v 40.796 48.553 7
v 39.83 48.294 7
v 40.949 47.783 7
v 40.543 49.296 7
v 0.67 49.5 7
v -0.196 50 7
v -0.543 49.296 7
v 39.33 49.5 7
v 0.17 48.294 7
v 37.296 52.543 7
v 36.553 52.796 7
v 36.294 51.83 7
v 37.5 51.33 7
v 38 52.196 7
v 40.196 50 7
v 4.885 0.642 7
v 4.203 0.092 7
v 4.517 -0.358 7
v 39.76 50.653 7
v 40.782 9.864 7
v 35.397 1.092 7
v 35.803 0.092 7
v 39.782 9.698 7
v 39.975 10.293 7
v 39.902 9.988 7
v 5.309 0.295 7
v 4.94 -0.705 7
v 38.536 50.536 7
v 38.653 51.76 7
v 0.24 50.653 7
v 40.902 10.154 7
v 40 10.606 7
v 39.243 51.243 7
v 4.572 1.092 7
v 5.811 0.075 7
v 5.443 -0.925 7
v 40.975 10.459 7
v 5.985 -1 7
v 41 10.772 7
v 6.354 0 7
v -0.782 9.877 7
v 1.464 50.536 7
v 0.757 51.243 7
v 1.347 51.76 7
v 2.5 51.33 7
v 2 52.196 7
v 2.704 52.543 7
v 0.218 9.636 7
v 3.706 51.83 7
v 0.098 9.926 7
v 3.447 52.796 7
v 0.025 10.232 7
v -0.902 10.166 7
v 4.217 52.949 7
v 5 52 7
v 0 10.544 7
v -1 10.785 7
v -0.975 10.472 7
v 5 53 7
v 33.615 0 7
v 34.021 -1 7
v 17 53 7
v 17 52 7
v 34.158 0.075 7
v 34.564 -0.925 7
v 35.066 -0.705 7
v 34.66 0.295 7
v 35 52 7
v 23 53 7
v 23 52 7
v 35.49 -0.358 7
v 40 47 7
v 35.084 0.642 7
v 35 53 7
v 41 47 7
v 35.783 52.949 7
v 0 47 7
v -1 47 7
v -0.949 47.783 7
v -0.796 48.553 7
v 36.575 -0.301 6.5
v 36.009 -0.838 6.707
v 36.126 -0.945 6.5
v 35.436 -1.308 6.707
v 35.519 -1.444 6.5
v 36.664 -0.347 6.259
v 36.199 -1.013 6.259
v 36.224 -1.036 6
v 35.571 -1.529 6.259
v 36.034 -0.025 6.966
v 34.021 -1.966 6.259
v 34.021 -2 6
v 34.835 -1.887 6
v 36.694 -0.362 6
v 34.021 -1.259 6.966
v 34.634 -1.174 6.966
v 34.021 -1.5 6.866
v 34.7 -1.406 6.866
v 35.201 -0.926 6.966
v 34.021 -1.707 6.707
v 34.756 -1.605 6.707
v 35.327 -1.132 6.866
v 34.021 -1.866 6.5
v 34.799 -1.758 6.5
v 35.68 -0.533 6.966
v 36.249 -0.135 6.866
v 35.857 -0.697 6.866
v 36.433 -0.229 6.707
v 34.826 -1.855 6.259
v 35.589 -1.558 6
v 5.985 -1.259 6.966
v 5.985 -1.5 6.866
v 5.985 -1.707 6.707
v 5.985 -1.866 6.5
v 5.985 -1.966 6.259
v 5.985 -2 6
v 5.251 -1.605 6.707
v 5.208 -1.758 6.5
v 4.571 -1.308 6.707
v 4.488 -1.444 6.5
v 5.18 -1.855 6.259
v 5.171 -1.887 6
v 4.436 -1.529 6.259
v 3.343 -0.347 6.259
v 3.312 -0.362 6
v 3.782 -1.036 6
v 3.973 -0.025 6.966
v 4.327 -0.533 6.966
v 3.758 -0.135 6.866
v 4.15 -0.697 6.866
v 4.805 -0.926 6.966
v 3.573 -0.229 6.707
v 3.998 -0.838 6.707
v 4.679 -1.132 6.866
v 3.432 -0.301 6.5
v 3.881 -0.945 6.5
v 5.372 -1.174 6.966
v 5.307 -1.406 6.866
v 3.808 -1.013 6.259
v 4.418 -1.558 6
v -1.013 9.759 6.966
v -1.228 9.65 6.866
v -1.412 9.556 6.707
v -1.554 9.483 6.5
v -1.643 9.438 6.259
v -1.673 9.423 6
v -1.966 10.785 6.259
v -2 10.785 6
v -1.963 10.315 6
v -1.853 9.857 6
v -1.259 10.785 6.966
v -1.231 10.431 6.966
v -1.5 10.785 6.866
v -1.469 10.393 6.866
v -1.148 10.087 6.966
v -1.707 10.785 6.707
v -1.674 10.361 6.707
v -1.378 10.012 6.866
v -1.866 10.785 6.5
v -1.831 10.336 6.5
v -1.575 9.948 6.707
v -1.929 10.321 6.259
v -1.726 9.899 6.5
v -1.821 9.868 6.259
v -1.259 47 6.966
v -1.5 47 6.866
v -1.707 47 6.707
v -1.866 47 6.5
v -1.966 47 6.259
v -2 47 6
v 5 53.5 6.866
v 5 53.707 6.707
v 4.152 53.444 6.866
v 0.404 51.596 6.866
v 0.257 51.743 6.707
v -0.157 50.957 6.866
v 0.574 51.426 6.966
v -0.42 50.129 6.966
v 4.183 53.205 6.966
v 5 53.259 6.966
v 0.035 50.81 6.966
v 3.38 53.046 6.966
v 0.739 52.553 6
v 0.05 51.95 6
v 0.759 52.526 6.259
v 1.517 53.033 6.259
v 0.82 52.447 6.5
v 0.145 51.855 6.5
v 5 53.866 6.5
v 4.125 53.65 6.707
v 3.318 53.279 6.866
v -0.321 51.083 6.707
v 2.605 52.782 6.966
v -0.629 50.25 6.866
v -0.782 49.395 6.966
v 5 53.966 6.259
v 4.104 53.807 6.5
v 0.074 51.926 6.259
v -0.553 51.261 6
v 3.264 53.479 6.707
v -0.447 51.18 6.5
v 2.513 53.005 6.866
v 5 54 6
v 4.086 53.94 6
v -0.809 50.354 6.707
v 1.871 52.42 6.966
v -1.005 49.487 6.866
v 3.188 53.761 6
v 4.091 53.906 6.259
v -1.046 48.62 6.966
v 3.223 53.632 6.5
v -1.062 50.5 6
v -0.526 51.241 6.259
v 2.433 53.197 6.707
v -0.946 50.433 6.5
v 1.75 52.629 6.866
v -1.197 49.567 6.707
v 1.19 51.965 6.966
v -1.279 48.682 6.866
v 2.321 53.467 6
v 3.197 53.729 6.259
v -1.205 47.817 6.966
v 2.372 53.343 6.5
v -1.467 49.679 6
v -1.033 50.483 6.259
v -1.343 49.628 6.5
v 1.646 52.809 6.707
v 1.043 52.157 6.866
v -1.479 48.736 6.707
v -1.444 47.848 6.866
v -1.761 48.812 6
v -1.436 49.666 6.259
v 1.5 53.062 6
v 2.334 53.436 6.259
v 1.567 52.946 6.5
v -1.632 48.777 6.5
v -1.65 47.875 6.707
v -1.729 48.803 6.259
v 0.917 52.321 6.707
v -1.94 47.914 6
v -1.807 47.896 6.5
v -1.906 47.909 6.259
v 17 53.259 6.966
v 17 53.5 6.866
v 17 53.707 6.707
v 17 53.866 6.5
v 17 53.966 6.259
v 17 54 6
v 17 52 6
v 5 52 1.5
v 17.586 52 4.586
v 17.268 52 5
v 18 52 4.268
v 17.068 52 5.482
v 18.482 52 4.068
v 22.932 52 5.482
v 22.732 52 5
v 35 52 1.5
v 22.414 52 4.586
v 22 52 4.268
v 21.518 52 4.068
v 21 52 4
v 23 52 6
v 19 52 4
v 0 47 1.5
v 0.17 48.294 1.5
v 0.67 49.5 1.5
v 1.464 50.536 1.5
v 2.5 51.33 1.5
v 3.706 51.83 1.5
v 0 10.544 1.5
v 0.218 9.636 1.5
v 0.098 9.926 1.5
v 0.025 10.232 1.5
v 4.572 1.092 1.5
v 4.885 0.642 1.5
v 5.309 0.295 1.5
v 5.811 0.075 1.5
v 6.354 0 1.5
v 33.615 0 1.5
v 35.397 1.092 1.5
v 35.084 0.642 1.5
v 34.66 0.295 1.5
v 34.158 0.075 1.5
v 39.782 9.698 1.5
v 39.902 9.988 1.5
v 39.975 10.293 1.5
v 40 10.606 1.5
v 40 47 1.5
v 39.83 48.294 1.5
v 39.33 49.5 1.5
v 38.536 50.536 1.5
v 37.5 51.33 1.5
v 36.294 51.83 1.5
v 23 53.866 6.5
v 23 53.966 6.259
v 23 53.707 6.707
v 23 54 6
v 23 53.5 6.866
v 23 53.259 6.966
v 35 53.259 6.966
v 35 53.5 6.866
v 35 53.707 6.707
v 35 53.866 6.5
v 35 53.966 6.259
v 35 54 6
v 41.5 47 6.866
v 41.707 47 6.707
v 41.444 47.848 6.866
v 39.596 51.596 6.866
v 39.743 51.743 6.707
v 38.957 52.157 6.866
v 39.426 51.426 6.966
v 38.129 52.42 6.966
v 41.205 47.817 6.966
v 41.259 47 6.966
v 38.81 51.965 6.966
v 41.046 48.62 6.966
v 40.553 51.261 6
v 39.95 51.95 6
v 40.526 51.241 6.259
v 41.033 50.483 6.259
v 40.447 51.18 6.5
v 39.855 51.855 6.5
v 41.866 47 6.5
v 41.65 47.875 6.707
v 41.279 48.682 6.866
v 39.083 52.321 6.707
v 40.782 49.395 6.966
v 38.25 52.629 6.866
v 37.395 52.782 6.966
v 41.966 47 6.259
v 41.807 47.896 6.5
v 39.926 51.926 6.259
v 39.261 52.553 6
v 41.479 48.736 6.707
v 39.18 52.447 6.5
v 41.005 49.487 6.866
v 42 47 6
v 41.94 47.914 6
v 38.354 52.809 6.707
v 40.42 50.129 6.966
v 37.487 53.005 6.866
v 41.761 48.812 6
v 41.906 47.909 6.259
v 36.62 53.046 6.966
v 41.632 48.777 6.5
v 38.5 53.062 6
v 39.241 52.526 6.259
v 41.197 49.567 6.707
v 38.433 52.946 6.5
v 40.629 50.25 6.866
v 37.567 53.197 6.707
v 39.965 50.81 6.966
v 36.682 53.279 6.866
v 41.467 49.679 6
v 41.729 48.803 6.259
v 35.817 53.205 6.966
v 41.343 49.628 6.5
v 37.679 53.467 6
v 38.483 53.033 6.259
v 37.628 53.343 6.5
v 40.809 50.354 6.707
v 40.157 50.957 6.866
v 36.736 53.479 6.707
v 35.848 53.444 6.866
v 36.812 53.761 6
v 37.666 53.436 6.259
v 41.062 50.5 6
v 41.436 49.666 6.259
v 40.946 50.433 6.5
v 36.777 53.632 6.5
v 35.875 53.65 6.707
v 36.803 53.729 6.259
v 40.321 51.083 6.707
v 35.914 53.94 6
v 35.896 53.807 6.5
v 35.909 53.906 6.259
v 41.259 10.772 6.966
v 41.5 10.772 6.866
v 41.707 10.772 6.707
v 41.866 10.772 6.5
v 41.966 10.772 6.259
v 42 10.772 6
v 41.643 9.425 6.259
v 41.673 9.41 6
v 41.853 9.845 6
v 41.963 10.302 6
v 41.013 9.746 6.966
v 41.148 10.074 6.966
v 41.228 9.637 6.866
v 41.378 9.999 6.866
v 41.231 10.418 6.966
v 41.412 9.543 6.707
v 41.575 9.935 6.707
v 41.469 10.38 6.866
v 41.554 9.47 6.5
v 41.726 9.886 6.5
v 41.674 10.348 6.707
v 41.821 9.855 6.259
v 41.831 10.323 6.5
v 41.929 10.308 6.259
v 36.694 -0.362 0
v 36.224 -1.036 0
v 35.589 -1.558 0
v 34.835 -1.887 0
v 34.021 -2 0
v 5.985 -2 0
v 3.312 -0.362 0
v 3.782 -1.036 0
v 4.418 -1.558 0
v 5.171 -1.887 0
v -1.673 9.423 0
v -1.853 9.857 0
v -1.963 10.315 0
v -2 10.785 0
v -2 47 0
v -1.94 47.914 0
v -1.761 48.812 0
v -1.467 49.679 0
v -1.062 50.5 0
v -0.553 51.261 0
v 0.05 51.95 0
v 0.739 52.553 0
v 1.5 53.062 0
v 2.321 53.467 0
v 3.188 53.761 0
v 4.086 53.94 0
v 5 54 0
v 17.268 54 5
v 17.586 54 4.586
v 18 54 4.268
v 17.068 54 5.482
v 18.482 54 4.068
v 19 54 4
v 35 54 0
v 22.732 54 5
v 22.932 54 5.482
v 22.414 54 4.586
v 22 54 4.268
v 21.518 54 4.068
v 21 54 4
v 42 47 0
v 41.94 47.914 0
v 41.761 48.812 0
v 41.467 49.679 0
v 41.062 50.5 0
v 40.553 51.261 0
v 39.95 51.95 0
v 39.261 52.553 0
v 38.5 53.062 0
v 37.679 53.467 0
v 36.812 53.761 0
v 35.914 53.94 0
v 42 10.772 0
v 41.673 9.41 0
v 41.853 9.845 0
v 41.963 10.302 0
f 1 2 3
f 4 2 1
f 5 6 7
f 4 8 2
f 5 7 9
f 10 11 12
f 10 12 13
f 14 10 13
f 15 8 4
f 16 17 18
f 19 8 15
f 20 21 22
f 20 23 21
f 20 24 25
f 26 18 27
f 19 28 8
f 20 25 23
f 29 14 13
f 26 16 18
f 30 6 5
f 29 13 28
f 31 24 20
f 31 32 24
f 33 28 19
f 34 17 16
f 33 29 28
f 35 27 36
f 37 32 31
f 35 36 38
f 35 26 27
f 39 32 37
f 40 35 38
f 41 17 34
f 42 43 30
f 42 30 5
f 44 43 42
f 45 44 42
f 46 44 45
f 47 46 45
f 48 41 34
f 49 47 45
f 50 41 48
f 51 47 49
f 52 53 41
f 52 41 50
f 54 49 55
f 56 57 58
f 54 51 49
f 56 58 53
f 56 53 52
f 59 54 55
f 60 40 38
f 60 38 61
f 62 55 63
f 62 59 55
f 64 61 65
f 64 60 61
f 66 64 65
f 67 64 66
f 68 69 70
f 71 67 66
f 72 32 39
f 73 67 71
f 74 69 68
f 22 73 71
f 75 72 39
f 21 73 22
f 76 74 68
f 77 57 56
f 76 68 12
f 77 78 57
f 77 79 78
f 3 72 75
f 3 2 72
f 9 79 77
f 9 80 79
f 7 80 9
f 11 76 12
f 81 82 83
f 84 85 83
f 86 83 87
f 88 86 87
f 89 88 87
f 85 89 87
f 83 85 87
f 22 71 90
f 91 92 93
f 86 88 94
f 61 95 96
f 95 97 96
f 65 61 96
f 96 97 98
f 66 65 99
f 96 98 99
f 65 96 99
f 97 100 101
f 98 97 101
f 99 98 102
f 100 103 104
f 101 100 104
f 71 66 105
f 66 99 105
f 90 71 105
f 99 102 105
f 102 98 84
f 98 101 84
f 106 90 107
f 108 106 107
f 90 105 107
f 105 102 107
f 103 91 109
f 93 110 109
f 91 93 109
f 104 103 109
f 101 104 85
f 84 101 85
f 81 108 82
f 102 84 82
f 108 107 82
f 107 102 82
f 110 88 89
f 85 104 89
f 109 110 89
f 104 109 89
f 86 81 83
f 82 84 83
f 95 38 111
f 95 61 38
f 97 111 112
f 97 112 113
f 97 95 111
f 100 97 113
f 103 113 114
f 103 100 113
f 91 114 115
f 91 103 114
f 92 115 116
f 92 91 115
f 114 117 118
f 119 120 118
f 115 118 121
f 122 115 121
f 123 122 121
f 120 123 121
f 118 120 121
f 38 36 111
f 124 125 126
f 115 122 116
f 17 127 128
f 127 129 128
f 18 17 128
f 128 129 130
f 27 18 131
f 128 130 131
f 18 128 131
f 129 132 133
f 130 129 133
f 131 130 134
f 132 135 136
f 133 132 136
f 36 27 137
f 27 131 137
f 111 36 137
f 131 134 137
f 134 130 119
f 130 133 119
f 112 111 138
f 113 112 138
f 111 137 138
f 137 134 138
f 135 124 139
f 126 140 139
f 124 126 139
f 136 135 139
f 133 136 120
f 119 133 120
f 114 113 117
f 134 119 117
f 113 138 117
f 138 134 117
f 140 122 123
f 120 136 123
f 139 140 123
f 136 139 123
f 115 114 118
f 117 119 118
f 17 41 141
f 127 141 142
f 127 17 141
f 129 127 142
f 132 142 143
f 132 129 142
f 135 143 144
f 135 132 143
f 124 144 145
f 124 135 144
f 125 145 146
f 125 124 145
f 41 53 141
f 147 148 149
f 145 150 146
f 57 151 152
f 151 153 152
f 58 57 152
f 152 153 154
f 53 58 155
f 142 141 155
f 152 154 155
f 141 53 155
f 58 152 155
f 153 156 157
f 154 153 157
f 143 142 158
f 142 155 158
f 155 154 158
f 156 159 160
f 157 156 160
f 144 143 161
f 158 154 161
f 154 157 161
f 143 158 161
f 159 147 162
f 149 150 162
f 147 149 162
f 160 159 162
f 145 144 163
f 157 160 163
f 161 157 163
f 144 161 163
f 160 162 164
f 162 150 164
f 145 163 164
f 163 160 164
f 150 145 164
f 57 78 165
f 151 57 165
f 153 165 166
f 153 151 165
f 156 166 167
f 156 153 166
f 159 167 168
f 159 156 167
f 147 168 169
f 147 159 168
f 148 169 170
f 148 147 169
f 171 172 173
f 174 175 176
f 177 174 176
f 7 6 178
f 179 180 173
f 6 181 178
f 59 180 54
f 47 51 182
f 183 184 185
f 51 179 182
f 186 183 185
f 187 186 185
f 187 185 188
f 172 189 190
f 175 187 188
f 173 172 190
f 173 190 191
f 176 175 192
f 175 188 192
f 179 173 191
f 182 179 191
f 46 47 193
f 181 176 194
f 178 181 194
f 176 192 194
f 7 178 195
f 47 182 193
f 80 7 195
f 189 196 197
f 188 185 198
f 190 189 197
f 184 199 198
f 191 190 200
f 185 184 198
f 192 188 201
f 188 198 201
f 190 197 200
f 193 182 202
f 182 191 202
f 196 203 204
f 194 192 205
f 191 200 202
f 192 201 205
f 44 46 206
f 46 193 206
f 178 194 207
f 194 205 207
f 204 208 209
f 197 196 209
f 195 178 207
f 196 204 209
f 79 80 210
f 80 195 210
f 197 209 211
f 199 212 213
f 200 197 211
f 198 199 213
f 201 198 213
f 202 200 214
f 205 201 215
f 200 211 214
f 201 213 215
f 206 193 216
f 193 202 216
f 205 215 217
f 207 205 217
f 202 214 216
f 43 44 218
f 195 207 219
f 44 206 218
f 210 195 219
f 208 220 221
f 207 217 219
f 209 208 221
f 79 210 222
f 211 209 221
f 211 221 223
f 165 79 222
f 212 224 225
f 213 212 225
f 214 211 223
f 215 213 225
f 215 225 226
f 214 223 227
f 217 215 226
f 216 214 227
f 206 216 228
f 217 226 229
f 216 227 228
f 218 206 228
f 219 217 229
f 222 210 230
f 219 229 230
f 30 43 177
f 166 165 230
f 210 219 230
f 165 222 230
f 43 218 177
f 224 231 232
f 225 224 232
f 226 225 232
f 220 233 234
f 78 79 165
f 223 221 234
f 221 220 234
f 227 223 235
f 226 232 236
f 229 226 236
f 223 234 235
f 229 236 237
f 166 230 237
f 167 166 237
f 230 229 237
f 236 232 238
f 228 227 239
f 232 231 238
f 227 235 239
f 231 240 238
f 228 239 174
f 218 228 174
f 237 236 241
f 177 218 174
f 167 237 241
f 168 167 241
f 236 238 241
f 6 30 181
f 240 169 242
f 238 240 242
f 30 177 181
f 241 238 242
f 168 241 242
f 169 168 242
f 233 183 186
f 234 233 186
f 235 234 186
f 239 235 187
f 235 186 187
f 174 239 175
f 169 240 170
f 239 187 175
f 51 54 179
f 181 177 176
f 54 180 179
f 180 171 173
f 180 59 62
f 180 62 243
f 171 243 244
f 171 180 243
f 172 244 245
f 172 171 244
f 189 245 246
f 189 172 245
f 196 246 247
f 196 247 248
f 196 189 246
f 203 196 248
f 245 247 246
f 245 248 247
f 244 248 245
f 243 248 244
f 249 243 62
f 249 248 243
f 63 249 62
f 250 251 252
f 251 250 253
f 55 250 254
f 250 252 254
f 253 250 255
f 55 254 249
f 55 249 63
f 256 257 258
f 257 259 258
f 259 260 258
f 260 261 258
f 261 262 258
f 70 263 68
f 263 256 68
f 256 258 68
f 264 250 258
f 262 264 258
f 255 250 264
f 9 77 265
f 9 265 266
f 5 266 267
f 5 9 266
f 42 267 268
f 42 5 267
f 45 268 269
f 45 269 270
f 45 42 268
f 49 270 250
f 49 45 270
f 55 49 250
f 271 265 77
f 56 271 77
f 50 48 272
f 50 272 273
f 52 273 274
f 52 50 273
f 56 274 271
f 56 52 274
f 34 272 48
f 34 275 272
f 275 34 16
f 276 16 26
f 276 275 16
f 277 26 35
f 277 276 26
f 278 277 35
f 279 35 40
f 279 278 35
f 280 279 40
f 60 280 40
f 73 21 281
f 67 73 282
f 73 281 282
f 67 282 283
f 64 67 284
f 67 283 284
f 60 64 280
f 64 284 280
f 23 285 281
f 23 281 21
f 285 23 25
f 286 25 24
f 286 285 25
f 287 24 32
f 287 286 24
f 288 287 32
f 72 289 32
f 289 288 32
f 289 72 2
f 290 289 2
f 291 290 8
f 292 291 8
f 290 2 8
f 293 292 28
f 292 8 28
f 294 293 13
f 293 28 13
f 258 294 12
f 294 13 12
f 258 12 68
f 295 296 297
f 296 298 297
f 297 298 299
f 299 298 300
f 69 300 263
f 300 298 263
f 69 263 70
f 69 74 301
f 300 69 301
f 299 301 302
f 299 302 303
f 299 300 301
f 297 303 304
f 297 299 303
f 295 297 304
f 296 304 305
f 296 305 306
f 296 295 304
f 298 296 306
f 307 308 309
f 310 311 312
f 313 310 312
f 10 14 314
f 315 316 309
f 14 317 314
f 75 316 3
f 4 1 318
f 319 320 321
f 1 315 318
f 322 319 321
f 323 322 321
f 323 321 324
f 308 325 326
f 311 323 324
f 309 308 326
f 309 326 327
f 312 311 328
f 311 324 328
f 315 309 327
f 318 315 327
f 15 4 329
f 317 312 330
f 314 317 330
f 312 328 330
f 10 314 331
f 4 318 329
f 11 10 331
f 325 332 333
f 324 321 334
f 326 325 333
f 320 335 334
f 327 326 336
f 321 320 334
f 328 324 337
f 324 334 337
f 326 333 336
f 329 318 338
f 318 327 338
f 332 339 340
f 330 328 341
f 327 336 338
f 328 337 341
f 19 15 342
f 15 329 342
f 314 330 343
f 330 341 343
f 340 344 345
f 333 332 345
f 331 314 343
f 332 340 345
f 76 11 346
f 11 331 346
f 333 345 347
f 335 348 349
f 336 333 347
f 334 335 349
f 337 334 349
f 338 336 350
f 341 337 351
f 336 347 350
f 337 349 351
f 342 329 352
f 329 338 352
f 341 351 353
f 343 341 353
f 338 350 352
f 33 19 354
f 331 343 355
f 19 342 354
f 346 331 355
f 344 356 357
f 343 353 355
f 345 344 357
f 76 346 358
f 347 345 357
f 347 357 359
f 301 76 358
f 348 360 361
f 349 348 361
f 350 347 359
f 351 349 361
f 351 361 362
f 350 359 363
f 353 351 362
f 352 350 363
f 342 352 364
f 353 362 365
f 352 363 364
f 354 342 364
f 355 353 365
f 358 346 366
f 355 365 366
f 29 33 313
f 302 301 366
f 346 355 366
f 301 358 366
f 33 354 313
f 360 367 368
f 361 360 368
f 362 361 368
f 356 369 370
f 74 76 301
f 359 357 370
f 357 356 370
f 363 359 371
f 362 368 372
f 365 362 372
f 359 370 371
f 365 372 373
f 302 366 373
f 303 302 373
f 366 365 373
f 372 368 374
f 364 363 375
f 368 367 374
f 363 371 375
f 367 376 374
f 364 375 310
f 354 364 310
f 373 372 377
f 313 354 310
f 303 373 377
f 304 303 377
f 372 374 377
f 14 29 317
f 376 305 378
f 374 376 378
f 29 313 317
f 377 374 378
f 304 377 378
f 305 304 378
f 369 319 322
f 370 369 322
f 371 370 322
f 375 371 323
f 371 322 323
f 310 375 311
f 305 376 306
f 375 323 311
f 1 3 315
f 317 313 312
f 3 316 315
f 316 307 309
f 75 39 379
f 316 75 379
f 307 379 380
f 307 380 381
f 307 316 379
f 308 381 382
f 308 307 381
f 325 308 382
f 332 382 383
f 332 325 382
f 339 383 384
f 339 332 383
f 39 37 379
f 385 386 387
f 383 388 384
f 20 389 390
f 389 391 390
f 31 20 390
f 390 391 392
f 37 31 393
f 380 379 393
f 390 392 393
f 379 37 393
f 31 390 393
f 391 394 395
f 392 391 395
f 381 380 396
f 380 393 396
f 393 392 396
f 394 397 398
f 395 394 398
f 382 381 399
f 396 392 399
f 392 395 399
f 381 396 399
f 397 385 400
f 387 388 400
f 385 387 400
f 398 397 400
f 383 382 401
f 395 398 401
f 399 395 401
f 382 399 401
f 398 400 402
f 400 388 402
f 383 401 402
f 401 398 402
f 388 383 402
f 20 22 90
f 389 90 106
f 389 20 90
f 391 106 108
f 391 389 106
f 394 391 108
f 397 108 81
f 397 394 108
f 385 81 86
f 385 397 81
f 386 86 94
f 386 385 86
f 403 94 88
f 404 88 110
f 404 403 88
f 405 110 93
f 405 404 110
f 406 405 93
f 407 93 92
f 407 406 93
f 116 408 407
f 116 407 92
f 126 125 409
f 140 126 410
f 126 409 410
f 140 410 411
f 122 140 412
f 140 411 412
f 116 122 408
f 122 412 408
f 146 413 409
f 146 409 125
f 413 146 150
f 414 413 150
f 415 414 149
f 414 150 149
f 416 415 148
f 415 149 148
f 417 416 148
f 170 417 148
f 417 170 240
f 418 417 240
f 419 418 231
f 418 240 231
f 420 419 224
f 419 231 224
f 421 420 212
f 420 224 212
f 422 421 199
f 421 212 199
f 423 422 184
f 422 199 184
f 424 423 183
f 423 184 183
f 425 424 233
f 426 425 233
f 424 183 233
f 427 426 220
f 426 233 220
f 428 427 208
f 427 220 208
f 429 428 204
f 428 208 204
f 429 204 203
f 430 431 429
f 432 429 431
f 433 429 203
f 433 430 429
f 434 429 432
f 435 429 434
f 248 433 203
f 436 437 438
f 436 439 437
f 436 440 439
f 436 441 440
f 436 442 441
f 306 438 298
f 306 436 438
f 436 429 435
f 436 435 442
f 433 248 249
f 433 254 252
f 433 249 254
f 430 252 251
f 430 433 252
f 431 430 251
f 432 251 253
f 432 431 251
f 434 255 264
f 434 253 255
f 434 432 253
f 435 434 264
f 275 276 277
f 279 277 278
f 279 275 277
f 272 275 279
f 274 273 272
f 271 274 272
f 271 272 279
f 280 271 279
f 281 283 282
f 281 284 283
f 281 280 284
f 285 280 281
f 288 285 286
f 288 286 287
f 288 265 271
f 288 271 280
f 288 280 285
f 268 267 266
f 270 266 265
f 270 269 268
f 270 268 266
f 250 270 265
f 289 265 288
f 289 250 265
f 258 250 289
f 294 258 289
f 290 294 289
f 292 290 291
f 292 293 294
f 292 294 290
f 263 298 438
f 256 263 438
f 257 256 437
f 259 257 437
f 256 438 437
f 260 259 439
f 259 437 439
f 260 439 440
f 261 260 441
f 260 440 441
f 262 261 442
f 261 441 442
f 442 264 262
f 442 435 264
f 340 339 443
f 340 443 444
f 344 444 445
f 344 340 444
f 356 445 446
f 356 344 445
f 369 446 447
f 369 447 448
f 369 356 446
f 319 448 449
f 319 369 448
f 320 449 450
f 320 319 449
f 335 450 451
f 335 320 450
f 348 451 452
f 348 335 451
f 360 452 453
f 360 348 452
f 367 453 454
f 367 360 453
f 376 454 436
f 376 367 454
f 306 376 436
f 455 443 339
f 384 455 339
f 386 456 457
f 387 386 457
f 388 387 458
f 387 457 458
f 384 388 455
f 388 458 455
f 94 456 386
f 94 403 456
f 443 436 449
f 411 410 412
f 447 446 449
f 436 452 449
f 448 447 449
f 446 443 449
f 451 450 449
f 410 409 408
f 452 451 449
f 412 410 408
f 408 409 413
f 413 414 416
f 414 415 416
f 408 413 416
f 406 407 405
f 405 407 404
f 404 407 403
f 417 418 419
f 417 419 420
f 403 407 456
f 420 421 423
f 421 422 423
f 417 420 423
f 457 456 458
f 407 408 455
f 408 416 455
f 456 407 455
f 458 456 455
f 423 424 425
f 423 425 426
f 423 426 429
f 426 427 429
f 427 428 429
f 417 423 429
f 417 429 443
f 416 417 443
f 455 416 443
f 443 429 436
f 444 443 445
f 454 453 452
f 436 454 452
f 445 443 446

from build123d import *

# Parameters (mm, degrees)
BOX006_W               = 6
BOX006_H               = 30
BOX006_DEPTH           = 10
FILLET007_R            = 2
BOX002_W               = 10
BOX002_H               = 100
BOX002_DEPTH           = 10
BOX002_PLACEMENT_ANGLE = -27
BOX001_W               = 10
BOX001_H               = 100
BOX001_DEPTH           = 10
BOX001_PLACEMENT_ANGLE = 27
BOX_W                  = 40
BOX_H                  = 52
BOX_DEPTH              = 10
FILLET_R               = 5
FILLET001_R            = 2
FILLET002_R            = 2
BOX005_W               = 10
BOX005_H               = 100
BOX005_DEPTH           = 10
BOX005_PLACEMENT_ANGLE = 27
BOX004_W               = 10
BOX004_H               = 100
BOX004_DEPTH           = 10
BOX004_PLACEMENT_ANGLE = -27
BOX003_W               = 44
BOX003_H               = 56
BOX003_DEPTH           = 7
FILLET003_R            = 7
FILLET004_R            = 3
FILLET005_R            = 3
FILLET006_R            = 1


with BuildPart() as fillet007:
    # Box006 → Box006 (new body)
    with BuildSketch(Plane(origin=(17, 30, 0), x_dir=(1, 0, 0), z_dir=(0, 0, 1))):
        with Locations((3, 15)):
            Rectangle(BOX006_W, BOX006_H)
    extrude(amount=BOX006_DEPTH)

    # Fillet007
    fillet007_edges = [fillet007.edges().sort_by_distance(p)[0] for p in [
        (17, 45, 0),
        (23, 45, 0),
    ]]
    fillet(fillet007_edges, radius=FILLET007_R)


with BuildPart() as fillet007_1:
    # Fillet007 placement: moved
    add(fillet007.part.moved(Location((0, 0, 4))))


with BuildPart() as cube002:
    # Box002 → Box002 (new body)
    with BuildSketch(Plane.XY):
        with Locations((5, 50)):
            Rectangle(BOX002_W, BOX002_H)
    extrude(amount=BOX002_DEPTH)


with BuildPart() as cube002_1:
    # Box002 placement: moved
    add(cube002.part.moved(Location((30, -9.5, 0))).rotate(Axis((30, -9.5, 0), (0, 0, 1)), BOX002_PLACEMENT_ANGLE))


with BuildPart() as cube001:
    # Box001 → Box001 (new body)
    with BuildSketch(Plane.XY):
        with Locations((5, 50)):
            Rectangle(BOX001_W, BOX001_H)
    extrude(amount=BOX001_DEPTH)


with BuildPart() as cube001_1:
    # Box001 placement: moved
    add(cube001.part.moved(Location((-1, -10, 0))).rotate(Axis((-1, -10, 0), (0, 0, 1)), BOX001_PLACEMENT_ANGLE))


with BuildPart() as gps_profile:
    # Box → Box (new body)
    with BuildSketch(Plane.XY):
        with Locations((20, 26)):
            Rectangle(BOX_W, BOX_H)
    extrude(amount=BOX_DEPTH)

    # Fillet
    fillet_edges = [gps_profile.edges().sort_by_distance(p)[0] for p in [
        (0, 52, 5),
        (40, 52, 5),
    ]]
    fillet(fillet_edges, radius=FILLET_R)

    # Cut: cut Cube001
    add(cube001_1.part, mode=Mode.SUBTRACT)

    # Cut001: cut Cube002
    add(cube002_1.part, mode=Mode.SUBTRACT)

    # Fillet001
    fillet001_edges = [gps_profile.edges().sort_by_distance(p)[0] for p in [
        (5.128008, 0, 5),
        (34.840492, 0, 5),
    ]]
    fillet(fillet001_edges, radius=FILLET001_R)

    # Fillet002
    fillet002_edges = [gps_profile.edges().sort_by_distance(p)[0] for p in [
        (40, 10.126105, 5),
        (0, 10.064282, 5),
    ]]
    fillet(fillet002_edges, radius=FILLET002_R)


with BuildPart() as gps_profile_1:
    # Fillet002 placement: moved
    add(gps_profile.part.moved(Location((0, 0, 1.5))))


with BuildPart() as cube005:
    # Box005 → Box005 (new body)
    with BuildSketch(Plane.XY):
        with Locations((5, 50)):
            Rectangle(BOX005_W, BOX005_H)
    extrude(amount=BOX005_DEPTH)


with BuildPart() as cube005_1:
    # Box005 placement: moved
    add(cube005.part.moved(Location((-3, -10, 0))).rotate(Axis((-3, -10, 0), (0, 0, 1)), BOX005_PLACEMENT_ANGLE))


with BuildPart() as cube004:
    # Box004 → Box004 (new body)
    with BuildSketch(Plane.XY):
        with Locations((5, 50)):
            Rectangle(BOX004_W, BOX004_H)
    extrude(amount=BOX004_DEPTH)


with BuildPart() as cube004_1:
    # Box004 placement: moved
    add(cube004.part.moved(Location((30, -13.5, 0))).rotate(Axis((30, -13.5, 0), (0, 0, 1)), BOX004_PLACEMENT_ANGLE))


with BuildPart() as gps_mount:
    # Box003 → Box003 (new body)
    with BuildSketch(Plane(origin=(-2, -2, 0), x_dir=(1, 0, 0), z_dir=(0, 0, 1))):
        with Locations((22, 28)):
            Rectangle(BOX003_W, BOX003_H)
    extrude(amount=BOX003_DEPTH)

    # Fillet003
    fillet003_edges = [gps_mount.edges().sort_by_distance(p)[0] for p in [
        (-2, 54, 3.5),
        (42, 54, 3.5),
    ]]
    fillet(fillet003_edges, radius=FILLET003_R)

    # Cut002: cut Cube004
    add(cube004_1.part, mode=Mode.SUBTRACT)

    # Cut003: cut Cube005
    add(cube005_1.part, mode=Mode.SUBTRACT)

    # Fillet004
    fillet004_edges = [gps_mount.edges().sort_by_distance(p)[0] for p in [
        (4.147059, -2, 3.5),
        (35.859543, -2, 3.5),
    ]]
    fillet(fillet004_edges, radius=FILLET004_R)

    # Fillet005
    fillet005_edges = [gps_mount.edges().sort_by_distance(p)[0] for p in [
        (42, 10.051326, 3.5),
        (-2, 10.064282, 3.5),
    ]]
    fillet(fillet005_edges, radius=FILLET005_R)

    # Cut004: cut GPS Profile
    add(gps_profile_1.part, mode=Mode.SUBTRACT)

    # Fillet006
    fillet006_edges = [gps_mount.edges().sort_by_distance(p)[0] for p in [
        (39.18359, 4.52381, 7),
        (41.91711, 10.071226, 7),
        (35.588636, -1.55792, 7),
        (42, 28.885781, 7),
        (20.003301, -2, 7),
        (39.949747, 51.949747, 7),
        (4.417965, -1.55792, 7),
        (20, 54, 7),
        (0.819711, 4.530288, 7),
        (0.050253, 51.949747, 7),
        (-1.91711, 10.084182, 7),
        (-2, 28.892259, 7),
    ]]
    fillet(fillet006_edges, radius=FILLET006_R)

    # Cut005: cut Fillet007
    add(fillet007_1.part, mode=Mode.SUBTRACT)


solid = gps_mount.part
